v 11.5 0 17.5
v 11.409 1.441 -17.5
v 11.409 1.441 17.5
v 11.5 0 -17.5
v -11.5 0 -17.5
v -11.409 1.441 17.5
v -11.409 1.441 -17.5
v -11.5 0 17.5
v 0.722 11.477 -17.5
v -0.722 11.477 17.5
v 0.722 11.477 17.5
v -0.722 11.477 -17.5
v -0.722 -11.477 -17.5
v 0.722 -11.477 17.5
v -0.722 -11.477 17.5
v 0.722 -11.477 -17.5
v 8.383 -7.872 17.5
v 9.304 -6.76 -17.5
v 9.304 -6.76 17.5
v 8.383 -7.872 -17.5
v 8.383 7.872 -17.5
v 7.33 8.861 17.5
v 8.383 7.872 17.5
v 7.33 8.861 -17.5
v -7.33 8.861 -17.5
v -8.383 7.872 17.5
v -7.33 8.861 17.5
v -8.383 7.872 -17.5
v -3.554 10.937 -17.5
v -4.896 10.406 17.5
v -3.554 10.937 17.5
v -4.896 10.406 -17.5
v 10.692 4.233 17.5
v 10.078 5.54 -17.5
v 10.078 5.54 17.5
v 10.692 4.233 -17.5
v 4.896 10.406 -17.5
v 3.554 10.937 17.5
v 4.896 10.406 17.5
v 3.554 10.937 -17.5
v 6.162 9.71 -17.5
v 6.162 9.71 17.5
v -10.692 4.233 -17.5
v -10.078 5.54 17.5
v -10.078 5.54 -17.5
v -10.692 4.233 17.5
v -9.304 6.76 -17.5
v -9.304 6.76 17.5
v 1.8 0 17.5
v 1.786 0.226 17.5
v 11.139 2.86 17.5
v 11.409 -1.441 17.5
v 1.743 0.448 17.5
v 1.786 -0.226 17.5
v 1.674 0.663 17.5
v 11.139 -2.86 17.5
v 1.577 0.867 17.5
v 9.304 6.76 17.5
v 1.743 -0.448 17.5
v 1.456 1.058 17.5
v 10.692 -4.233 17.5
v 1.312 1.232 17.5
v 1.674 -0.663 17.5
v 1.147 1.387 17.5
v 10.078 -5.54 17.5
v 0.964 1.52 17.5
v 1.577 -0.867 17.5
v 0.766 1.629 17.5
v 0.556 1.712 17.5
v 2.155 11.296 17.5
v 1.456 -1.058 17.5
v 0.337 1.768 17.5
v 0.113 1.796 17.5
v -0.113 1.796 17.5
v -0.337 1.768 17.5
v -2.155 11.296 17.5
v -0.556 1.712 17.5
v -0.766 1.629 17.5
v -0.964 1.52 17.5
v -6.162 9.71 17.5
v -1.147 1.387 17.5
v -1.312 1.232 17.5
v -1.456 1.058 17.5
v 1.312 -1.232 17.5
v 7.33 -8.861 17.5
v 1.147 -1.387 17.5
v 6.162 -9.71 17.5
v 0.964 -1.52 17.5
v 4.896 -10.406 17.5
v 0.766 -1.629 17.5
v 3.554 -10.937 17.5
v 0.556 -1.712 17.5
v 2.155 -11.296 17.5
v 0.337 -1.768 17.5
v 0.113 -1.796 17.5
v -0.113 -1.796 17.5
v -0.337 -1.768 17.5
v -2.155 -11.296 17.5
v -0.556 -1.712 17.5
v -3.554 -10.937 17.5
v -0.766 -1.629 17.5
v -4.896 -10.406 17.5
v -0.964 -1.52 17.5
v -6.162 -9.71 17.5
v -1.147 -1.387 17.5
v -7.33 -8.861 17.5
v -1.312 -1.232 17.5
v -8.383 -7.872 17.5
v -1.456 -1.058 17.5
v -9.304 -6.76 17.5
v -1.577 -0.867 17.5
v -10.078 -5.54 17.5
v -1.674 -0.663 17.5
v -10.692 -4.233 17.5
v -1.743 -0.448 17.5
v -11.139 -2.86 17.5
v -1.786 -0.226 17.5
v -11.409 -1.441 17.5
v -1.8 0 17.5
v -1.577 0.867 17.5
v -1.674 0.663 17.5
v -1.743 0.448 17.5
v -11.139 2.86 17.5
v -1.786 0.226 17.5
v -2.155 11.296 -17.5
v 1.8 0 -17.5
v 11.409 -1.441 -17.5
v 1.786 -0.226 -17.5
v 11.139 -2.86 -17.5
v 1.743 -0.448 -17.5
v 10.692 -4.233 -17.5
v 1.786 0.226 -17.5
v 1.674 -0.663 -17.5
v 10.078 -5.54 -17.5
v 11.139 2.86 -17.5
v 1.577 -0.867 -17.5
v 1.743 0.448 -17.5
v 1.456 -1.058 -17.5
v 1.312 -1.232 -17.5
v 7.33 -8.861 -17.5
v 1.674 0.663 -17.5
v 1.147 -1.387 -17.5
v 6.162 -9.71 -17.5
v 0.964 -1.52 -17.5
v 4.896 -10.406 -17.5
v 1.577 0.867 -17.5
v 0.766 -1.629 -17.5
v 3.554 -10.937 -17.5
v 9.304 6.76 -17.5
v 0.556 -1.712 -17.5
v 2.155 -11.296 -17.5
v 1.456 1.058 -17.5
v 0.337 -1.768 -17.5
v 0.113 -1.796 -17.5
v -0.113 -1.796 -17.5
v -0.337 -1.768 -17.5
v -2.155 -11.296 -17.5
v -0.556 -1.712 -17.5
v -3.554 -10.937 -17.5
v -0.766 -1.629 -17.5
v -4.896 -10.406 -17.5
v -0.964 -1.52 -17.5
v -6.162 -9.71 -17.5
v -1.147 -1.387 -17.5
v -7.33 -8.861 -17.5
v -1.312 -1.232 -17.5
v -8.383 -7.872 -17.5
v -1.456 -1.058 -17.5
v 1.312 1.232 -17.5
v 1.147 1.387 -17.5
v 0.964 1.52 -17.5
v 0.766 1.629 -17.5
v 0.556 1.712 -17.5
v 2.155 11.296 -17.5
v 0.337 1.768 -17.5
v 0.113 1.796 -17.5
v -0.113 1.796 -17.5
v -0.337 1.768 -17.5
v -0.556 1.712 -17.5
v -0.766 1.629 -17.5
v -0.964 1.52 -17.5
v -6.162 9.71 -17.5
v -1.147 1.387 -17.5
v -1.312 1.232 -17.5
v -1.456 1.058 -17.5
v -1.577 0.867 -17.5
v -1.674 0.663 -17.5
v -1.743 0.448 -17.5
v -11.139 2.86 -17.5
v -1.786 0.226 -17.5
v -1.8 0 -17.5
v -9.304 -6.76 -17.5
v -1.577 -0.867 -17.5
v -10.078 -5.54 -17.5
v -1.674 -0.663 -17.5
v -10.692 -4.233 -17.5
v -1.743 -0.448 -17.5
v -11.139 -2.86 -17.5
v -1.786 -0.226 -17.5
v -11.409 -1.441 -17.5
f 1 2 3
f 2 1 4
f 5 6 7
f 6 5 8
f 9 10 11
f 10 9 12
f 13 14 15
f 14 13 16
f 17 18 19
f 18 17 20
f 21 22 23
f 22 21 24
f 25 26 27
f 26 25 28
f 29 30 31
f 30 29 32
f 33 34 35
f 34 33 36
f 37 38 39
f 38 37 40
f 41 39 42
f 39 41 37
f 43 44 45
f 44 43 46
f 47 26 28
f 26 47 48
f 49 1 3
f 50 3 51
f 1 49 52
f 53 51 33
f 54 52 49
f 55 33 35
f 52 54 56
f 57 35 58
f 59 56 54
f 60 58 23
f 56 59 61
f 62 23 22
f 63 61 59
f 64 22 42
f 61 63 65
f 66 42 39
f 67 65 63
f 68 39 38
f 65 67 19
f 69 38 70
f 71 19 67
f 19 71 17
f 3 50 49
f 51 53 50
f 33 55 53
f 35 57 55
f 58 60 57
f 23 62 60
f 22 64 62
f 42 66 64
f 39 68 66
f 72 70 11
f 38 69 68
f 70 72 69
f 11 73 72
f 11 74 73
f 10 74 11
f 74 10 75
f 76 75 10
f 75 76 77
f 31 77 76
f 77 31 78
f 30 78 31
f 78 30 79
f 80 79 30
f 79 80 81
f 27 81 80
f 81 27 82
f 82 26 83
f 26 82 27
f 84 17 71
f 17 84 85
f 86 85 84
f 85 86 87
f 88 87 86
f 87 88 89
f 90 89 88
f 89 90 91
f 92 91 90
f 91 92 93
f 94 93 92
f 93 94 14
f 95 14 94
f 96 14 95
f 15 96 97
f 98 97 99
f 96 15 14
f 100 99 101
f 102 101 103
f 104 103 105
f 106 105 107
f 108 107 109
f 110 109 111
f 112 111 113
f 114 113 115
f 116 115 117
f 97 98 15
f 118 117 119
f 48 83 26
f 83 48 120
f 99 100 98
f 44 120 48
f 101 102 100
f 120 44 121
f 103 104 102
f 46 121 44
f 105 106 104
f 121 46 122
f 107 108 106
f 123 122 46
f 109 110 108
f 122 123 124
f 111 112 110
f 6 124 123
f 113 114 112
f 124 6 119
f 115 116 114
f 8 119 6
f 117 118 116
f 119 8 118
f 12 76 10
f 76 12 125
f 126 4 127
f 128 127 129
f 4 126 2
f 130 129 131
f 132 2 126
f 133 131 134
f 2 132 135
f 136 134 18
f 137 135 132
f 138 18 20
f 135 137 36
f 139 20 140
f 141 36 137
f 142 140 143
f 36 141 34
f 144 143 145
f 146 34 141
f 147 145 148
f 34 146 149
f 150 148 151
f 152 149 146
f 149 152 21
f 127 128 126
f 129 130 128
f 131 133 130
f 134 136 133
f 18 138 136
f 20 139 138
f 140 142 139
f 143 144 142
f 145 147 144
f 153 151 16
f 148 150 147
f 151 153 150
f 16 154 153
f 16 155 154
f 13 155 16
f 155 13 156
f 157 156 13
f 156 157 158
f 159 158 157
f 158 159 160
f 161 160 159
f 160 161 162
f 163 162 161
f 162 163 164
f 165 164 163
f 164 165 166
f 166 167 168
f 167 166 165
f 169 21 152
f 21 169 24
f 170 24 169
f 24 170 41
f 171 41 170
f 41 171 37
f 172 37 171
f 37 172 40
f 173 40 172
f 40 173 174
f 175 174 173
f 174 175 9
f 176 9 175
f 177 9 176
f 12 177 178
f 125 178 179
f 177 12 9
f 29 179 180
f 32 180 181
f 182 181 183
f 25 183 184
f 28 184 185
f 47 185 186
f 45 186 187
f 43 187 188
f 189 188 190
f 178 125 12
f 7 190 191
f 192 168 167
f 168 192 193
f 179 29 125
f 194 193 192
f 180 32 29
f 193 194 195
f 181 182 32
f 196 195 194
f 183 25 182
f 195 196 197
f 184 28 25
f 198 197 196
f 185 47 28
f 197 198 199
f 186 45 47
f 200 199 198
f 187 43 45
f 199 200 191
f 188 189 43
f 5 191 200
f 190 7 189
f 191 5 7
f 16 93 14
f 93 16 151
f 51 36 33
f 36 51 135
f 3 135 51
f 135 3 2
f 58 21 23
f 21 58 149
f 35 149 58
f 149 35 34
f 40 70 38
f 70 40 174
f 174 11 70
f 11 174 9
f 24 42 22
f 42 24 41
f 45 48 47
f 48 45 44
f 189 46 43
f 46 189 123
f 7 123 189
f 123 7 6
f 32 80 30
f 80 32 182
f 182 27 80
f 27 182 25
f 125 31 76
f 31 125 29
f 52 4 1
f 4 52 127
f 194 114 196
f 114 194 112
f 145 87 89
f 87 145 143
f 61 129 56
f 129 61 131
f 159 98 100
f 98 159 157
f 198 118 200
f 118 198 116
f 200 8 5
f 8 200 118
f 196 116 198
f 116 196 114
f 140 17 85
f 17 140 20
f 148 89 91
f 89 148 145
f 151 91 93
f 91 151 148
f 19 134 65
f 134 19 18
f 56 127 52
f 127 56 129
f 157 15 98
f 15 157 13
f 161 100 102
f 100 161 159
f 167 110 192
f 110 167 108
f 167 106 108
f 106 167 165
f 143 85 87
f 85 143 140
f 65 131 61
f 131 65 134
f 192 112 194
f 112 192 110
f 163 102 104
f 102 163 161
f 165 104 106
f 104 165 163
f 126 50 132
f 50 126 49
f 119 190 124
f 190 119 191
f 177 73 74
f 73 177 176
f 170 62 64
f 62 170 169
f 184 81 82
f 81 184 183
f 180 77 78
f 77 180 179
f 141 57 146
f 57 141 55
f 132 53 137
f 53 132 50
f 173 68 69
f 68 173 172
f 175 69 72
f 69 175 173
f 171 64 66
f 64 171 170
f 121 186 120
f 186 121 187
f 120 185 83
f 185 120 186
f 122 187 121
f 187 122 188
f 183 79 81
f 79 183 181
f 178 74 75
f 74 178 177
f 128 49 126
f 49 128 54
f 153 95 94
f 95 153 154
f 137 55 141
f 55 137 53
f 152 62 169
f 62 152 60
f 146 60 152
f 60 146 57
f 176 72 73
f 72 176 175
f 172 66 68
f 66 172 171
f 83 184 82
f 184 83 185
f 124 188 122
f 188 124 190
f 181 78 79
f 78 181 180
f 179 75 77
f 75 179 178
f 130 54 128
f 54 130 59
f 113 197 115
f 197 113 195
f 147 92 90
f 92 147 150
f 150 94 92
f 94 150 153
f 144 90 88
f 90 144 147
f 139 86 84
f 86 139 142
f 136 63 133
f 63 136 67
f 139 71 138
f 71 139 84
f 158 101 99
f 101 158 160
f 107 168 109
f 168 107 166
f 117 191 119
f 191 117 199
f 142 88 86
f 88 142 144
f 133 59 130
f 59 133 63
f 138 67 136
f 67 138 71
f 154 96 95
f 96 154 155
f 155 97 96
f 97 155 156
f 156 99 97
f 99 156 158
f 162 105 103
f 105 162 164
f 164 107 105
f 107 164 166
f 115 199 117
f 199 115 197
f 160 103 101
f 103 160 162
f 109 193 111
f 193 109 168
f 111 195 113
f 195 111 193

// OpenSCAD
$fn = 50;


difference() {
	union() {
		translate(v = [0, 0, -17.5000000000]) {
			cylinder(h = 35, r = 11.5000000000);
		}
	}
	union() {
		translate(v = [0, 0, -100.0000000000]) {
			cylinder(h = 200, r = 1.8000000000);
		}
	}
}
